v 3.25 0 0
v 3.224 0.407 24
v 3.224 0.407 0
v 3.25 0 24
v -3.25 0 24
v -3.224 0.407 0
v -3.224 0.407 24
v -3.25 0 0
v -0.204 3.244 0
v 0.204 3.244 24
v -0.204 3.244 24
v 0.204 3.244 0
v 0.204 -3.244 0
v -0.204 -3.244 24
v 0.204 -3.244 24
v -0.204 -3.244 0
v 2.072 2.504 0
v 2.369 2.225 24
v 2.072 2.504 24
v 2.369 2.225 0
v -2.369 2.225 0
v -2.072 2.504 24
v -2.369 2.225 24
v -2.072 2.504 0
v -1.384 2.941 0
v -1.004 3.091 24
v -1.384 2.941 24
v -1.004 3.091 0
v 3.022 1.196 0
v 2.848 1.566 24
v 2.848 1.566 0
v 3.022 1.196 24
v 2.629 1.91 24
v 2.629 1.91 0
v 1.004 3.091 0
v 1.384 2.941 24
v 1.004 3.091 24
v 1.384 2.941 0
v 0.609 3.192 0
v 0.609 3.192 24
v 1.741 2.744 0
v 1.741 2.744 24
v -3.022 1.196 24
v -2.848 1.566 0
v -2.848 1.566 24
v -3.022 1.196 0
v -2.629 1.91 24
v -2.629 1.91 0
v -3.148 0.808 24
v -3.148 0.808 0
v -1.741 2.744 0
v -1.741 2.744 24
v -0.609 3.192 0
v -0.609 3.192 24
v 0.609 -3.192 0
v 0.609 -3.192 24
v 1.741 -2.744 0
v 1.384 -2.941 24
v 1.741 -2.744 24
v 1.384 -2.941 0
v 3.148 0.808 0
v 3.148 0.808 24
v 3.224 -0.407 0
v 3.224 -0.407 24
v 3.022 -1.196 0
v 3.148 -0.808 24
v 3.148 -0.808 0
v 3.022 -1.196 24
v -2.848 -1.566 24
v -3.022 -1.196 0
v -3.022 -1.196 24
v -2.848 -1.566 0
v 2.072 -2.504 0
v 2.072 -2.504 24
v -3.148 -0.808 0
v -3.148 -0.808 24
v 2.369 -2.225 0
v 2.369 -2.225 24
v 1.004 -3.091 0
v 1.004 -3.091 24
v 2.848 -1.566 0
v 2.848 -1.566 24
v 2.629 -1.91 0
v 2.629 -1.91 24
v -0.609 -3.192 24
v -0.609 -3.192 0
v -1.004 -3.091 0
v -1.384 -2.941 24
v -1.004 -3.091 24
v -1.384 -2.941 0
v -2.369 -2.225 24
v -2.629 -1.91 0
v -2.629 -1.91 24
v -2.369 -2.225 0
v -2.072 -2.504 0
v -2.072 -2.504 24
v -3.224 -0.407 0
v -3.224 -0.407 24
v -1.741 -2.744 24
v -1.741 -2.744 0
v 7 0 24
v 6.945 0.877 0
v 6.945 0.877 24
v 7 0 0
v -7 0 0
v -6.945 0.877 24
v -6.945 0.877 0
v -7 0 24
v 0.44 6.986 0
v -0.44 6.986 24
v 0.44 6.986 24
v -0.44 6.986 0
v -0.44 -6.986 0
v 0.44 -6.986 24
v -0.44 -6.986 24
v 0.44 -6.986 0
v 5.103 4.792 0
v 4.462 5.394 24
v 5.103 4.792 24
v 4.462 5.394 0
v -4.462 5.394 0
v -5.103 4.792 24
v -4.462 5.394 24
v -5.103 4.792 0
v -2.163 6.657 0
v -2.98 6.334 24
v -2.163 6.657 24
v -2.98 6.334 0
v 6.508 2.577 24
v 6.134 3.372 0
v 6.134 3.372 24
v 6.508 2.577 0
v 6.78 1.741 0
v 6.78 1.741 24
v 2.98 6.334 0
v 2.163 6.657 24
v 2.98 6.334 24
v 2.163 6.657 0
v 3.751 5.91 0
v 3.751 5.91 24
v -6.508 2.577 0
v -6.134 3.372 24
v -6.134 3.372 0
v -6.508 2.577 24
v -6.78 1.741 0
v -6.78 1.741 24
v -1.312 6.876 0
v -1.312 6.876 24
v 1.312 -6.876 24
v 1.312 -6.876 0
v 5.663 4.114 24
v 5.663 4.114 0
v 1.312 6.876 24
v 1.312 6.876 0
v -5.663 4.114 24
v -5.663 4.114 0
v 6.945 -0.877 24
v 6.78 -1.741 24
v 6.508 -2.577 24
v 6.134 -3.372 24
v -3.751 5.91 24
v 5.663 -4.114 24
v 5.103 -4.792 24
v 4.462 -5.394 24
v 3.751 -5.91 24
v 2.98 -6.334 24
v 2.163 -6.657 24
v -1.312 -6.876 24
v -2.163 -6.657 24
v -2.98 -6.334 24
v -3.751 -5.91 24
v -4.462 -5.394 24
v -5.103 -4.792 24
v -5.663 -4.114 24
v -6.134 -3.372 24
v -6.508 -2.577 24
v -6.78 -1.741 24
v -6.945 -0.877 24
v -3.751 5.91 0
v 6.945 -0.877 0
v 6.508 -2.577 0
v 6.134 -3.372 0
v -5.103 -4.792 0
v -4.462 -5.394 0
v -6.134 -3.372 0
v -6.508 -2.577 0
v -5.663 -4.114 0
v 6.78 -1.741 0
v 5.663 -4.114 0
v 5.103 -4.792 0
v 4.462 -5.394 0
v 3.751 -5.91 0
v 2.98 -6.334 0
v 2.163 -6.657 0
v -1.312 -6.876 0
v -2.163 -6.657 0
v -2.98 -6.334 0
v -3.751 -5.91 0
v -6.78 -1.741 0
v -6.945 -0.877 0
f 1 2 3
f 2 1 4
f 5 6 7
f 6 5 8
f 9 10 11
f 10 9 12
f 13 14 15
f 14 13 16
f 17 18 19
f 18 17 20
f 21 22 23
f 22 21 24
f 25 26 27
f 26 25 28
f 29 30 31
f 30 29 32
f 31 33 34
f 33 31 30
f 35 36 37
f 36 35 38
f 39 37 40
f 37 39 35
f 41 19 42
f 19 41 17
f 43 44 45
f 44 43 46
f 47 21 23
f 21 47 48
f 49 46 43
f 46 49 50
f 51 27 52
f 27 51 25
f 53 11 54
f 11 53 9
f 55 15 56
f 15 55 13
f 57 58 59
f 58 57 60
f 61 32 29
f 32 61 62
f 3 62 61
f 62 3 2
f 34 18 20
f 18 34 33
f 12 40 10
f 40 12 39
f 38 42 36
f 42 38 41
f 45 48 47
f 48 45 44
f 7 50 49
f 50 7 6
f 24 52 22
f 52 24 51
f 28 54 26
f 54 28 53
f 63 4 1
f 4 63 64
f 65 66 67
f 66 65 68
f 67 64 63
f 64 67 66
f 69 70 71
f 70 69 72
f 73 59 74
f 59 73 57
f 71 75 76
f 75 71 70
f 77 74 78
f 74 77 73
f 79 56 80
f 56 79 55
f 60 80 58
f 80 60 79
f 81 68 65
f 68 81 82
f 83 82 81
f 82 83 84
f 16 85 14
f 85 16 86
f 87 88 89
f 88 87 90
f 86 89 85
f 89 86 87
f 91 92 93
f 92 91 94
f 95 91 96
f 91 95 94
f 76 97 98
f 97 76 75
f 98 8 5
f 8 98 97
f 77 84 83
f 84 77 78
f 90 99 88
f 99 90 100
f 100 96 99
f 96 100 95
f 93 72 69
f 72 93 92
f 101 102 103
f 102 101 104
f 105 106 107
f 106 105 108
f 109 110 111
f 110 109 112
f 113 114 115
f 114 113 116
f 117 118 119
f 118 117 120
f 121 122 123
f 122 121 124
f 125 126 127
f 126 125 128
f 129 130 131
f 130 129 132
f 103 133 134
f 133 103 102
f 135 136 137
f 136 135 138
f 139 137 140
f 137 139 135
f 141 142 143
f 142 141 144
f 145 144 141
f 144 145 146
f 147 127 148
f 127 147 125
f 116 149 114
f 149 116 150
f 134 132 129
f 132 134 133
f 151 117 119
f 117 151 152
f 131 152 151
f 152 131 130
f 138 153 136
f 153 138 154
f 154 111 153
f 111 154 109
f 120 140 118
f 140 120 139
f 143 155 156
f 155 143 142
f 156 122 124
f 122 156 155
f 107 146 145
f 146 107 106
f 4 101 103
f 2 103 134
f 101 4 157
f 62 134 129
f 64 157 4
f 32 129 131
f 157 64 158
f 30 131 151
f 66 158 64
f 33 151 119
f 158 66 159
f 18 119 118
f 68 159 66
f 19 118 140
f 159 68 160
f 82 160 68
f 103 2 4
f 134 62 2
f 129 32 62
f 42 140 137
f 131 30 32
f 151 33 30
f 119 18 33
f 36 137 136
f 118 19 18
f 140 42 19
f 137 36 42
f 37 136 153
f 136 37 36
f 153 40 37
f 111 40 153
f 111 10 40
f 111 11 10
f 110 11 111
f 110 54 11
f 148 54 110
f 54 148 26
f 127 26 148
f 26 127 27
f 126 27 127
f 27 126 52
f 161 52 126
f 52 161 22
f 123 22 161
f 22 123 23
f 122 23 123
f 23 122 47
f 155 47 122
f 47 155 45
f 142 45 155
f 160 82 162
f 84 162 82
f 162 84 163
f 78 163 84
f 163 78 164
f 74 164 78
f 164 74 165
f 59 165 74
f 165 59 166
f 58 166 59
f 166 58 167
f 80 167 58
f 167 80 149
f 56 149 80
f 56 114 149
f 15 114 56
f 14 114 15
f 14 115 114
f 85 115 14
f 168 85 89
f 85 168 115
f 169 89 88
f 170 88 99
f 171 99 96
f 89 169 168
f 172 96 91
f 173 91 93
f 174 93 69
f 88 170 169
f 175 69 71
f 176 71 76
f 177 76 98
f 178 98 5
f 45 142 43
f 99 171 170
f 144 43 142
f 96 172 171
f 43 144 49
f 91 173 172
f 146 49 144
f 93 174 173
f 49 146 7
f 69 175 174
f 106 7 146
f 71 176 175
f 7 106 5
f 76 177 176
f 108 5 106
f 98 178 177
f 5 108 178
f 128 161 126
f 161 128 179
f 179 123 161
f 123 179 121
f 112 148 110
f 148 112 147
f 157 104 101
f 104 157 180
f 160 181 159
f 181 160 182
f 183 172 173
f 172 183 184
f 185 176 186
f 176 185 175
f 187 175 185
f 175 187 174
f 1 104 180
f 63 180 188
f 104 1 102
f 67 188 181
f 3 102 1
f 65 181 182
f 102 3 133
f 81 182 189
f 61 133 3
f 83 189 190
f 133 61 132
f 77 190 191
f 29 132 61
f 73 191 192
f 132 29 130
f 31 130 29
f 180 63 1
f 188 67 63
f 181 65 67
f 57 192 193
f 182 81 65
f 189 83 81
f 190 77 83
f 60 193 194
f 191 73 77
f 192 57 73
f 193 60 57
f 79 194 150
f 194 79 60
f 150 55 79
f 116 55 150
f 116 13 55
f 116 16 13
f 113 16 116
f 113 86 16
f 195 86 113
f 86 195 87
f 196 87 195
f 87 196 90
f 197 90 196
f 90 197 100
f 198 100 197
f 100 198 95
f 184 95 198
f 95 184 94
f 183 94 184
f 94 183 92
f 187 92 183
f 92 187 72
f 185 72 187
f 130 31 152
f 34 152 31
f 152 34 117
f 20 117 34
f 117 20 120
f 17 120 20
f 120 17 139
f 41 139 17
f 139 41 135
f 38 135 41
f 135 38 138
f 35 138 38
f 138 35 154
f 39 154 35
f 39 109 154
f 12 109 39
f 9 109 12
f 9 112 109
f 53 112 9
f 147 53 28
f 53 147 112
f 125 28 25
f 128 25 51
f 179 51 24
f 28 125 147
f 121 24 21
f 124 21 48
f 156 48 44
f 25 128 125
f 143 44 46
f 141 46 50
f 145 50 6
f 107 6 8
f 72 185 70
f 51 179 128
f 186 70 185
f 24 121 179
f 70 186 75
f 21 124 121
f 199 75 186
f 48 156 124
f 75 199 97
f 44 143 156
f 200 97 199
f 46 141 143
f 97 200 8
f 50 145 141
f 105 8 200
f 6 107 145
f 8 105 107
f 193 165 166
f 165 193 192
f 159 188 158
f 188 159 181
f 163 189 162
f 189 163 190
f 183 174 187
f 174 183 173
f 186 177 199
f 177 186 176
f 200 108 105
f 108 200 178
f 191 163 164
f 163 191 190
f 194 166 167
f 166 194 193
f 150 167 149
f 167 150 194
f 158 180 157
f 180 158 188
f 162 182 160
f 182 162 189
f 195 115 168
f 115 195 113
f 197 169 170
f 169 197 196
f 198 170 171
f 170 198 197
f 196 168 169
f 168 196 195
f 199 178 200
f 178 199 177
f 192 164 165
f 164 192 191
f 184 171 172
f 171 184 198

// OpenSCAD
$fn = 50;


difference() {
	union() {
		cylinder(h = 24, r = 7.0000000000);
	}
	union() {
		cylinder(h = 24, r = 3.2500000000);
		cylinder(h = 24, r = 3.2500000000);
		cylinder(h = 24, r = 1.8000000000);
		cylinder(h = 24, r = 1.8000000000);
		cylinder(h = 24, r = 1.8000000000);
		cylinder(h = 24, r = 1.8000000000);
		cylinder(h = 24, r = 1.8000000000);
		cylinder(h = 24, r = 1.8000000000);
	}
}
